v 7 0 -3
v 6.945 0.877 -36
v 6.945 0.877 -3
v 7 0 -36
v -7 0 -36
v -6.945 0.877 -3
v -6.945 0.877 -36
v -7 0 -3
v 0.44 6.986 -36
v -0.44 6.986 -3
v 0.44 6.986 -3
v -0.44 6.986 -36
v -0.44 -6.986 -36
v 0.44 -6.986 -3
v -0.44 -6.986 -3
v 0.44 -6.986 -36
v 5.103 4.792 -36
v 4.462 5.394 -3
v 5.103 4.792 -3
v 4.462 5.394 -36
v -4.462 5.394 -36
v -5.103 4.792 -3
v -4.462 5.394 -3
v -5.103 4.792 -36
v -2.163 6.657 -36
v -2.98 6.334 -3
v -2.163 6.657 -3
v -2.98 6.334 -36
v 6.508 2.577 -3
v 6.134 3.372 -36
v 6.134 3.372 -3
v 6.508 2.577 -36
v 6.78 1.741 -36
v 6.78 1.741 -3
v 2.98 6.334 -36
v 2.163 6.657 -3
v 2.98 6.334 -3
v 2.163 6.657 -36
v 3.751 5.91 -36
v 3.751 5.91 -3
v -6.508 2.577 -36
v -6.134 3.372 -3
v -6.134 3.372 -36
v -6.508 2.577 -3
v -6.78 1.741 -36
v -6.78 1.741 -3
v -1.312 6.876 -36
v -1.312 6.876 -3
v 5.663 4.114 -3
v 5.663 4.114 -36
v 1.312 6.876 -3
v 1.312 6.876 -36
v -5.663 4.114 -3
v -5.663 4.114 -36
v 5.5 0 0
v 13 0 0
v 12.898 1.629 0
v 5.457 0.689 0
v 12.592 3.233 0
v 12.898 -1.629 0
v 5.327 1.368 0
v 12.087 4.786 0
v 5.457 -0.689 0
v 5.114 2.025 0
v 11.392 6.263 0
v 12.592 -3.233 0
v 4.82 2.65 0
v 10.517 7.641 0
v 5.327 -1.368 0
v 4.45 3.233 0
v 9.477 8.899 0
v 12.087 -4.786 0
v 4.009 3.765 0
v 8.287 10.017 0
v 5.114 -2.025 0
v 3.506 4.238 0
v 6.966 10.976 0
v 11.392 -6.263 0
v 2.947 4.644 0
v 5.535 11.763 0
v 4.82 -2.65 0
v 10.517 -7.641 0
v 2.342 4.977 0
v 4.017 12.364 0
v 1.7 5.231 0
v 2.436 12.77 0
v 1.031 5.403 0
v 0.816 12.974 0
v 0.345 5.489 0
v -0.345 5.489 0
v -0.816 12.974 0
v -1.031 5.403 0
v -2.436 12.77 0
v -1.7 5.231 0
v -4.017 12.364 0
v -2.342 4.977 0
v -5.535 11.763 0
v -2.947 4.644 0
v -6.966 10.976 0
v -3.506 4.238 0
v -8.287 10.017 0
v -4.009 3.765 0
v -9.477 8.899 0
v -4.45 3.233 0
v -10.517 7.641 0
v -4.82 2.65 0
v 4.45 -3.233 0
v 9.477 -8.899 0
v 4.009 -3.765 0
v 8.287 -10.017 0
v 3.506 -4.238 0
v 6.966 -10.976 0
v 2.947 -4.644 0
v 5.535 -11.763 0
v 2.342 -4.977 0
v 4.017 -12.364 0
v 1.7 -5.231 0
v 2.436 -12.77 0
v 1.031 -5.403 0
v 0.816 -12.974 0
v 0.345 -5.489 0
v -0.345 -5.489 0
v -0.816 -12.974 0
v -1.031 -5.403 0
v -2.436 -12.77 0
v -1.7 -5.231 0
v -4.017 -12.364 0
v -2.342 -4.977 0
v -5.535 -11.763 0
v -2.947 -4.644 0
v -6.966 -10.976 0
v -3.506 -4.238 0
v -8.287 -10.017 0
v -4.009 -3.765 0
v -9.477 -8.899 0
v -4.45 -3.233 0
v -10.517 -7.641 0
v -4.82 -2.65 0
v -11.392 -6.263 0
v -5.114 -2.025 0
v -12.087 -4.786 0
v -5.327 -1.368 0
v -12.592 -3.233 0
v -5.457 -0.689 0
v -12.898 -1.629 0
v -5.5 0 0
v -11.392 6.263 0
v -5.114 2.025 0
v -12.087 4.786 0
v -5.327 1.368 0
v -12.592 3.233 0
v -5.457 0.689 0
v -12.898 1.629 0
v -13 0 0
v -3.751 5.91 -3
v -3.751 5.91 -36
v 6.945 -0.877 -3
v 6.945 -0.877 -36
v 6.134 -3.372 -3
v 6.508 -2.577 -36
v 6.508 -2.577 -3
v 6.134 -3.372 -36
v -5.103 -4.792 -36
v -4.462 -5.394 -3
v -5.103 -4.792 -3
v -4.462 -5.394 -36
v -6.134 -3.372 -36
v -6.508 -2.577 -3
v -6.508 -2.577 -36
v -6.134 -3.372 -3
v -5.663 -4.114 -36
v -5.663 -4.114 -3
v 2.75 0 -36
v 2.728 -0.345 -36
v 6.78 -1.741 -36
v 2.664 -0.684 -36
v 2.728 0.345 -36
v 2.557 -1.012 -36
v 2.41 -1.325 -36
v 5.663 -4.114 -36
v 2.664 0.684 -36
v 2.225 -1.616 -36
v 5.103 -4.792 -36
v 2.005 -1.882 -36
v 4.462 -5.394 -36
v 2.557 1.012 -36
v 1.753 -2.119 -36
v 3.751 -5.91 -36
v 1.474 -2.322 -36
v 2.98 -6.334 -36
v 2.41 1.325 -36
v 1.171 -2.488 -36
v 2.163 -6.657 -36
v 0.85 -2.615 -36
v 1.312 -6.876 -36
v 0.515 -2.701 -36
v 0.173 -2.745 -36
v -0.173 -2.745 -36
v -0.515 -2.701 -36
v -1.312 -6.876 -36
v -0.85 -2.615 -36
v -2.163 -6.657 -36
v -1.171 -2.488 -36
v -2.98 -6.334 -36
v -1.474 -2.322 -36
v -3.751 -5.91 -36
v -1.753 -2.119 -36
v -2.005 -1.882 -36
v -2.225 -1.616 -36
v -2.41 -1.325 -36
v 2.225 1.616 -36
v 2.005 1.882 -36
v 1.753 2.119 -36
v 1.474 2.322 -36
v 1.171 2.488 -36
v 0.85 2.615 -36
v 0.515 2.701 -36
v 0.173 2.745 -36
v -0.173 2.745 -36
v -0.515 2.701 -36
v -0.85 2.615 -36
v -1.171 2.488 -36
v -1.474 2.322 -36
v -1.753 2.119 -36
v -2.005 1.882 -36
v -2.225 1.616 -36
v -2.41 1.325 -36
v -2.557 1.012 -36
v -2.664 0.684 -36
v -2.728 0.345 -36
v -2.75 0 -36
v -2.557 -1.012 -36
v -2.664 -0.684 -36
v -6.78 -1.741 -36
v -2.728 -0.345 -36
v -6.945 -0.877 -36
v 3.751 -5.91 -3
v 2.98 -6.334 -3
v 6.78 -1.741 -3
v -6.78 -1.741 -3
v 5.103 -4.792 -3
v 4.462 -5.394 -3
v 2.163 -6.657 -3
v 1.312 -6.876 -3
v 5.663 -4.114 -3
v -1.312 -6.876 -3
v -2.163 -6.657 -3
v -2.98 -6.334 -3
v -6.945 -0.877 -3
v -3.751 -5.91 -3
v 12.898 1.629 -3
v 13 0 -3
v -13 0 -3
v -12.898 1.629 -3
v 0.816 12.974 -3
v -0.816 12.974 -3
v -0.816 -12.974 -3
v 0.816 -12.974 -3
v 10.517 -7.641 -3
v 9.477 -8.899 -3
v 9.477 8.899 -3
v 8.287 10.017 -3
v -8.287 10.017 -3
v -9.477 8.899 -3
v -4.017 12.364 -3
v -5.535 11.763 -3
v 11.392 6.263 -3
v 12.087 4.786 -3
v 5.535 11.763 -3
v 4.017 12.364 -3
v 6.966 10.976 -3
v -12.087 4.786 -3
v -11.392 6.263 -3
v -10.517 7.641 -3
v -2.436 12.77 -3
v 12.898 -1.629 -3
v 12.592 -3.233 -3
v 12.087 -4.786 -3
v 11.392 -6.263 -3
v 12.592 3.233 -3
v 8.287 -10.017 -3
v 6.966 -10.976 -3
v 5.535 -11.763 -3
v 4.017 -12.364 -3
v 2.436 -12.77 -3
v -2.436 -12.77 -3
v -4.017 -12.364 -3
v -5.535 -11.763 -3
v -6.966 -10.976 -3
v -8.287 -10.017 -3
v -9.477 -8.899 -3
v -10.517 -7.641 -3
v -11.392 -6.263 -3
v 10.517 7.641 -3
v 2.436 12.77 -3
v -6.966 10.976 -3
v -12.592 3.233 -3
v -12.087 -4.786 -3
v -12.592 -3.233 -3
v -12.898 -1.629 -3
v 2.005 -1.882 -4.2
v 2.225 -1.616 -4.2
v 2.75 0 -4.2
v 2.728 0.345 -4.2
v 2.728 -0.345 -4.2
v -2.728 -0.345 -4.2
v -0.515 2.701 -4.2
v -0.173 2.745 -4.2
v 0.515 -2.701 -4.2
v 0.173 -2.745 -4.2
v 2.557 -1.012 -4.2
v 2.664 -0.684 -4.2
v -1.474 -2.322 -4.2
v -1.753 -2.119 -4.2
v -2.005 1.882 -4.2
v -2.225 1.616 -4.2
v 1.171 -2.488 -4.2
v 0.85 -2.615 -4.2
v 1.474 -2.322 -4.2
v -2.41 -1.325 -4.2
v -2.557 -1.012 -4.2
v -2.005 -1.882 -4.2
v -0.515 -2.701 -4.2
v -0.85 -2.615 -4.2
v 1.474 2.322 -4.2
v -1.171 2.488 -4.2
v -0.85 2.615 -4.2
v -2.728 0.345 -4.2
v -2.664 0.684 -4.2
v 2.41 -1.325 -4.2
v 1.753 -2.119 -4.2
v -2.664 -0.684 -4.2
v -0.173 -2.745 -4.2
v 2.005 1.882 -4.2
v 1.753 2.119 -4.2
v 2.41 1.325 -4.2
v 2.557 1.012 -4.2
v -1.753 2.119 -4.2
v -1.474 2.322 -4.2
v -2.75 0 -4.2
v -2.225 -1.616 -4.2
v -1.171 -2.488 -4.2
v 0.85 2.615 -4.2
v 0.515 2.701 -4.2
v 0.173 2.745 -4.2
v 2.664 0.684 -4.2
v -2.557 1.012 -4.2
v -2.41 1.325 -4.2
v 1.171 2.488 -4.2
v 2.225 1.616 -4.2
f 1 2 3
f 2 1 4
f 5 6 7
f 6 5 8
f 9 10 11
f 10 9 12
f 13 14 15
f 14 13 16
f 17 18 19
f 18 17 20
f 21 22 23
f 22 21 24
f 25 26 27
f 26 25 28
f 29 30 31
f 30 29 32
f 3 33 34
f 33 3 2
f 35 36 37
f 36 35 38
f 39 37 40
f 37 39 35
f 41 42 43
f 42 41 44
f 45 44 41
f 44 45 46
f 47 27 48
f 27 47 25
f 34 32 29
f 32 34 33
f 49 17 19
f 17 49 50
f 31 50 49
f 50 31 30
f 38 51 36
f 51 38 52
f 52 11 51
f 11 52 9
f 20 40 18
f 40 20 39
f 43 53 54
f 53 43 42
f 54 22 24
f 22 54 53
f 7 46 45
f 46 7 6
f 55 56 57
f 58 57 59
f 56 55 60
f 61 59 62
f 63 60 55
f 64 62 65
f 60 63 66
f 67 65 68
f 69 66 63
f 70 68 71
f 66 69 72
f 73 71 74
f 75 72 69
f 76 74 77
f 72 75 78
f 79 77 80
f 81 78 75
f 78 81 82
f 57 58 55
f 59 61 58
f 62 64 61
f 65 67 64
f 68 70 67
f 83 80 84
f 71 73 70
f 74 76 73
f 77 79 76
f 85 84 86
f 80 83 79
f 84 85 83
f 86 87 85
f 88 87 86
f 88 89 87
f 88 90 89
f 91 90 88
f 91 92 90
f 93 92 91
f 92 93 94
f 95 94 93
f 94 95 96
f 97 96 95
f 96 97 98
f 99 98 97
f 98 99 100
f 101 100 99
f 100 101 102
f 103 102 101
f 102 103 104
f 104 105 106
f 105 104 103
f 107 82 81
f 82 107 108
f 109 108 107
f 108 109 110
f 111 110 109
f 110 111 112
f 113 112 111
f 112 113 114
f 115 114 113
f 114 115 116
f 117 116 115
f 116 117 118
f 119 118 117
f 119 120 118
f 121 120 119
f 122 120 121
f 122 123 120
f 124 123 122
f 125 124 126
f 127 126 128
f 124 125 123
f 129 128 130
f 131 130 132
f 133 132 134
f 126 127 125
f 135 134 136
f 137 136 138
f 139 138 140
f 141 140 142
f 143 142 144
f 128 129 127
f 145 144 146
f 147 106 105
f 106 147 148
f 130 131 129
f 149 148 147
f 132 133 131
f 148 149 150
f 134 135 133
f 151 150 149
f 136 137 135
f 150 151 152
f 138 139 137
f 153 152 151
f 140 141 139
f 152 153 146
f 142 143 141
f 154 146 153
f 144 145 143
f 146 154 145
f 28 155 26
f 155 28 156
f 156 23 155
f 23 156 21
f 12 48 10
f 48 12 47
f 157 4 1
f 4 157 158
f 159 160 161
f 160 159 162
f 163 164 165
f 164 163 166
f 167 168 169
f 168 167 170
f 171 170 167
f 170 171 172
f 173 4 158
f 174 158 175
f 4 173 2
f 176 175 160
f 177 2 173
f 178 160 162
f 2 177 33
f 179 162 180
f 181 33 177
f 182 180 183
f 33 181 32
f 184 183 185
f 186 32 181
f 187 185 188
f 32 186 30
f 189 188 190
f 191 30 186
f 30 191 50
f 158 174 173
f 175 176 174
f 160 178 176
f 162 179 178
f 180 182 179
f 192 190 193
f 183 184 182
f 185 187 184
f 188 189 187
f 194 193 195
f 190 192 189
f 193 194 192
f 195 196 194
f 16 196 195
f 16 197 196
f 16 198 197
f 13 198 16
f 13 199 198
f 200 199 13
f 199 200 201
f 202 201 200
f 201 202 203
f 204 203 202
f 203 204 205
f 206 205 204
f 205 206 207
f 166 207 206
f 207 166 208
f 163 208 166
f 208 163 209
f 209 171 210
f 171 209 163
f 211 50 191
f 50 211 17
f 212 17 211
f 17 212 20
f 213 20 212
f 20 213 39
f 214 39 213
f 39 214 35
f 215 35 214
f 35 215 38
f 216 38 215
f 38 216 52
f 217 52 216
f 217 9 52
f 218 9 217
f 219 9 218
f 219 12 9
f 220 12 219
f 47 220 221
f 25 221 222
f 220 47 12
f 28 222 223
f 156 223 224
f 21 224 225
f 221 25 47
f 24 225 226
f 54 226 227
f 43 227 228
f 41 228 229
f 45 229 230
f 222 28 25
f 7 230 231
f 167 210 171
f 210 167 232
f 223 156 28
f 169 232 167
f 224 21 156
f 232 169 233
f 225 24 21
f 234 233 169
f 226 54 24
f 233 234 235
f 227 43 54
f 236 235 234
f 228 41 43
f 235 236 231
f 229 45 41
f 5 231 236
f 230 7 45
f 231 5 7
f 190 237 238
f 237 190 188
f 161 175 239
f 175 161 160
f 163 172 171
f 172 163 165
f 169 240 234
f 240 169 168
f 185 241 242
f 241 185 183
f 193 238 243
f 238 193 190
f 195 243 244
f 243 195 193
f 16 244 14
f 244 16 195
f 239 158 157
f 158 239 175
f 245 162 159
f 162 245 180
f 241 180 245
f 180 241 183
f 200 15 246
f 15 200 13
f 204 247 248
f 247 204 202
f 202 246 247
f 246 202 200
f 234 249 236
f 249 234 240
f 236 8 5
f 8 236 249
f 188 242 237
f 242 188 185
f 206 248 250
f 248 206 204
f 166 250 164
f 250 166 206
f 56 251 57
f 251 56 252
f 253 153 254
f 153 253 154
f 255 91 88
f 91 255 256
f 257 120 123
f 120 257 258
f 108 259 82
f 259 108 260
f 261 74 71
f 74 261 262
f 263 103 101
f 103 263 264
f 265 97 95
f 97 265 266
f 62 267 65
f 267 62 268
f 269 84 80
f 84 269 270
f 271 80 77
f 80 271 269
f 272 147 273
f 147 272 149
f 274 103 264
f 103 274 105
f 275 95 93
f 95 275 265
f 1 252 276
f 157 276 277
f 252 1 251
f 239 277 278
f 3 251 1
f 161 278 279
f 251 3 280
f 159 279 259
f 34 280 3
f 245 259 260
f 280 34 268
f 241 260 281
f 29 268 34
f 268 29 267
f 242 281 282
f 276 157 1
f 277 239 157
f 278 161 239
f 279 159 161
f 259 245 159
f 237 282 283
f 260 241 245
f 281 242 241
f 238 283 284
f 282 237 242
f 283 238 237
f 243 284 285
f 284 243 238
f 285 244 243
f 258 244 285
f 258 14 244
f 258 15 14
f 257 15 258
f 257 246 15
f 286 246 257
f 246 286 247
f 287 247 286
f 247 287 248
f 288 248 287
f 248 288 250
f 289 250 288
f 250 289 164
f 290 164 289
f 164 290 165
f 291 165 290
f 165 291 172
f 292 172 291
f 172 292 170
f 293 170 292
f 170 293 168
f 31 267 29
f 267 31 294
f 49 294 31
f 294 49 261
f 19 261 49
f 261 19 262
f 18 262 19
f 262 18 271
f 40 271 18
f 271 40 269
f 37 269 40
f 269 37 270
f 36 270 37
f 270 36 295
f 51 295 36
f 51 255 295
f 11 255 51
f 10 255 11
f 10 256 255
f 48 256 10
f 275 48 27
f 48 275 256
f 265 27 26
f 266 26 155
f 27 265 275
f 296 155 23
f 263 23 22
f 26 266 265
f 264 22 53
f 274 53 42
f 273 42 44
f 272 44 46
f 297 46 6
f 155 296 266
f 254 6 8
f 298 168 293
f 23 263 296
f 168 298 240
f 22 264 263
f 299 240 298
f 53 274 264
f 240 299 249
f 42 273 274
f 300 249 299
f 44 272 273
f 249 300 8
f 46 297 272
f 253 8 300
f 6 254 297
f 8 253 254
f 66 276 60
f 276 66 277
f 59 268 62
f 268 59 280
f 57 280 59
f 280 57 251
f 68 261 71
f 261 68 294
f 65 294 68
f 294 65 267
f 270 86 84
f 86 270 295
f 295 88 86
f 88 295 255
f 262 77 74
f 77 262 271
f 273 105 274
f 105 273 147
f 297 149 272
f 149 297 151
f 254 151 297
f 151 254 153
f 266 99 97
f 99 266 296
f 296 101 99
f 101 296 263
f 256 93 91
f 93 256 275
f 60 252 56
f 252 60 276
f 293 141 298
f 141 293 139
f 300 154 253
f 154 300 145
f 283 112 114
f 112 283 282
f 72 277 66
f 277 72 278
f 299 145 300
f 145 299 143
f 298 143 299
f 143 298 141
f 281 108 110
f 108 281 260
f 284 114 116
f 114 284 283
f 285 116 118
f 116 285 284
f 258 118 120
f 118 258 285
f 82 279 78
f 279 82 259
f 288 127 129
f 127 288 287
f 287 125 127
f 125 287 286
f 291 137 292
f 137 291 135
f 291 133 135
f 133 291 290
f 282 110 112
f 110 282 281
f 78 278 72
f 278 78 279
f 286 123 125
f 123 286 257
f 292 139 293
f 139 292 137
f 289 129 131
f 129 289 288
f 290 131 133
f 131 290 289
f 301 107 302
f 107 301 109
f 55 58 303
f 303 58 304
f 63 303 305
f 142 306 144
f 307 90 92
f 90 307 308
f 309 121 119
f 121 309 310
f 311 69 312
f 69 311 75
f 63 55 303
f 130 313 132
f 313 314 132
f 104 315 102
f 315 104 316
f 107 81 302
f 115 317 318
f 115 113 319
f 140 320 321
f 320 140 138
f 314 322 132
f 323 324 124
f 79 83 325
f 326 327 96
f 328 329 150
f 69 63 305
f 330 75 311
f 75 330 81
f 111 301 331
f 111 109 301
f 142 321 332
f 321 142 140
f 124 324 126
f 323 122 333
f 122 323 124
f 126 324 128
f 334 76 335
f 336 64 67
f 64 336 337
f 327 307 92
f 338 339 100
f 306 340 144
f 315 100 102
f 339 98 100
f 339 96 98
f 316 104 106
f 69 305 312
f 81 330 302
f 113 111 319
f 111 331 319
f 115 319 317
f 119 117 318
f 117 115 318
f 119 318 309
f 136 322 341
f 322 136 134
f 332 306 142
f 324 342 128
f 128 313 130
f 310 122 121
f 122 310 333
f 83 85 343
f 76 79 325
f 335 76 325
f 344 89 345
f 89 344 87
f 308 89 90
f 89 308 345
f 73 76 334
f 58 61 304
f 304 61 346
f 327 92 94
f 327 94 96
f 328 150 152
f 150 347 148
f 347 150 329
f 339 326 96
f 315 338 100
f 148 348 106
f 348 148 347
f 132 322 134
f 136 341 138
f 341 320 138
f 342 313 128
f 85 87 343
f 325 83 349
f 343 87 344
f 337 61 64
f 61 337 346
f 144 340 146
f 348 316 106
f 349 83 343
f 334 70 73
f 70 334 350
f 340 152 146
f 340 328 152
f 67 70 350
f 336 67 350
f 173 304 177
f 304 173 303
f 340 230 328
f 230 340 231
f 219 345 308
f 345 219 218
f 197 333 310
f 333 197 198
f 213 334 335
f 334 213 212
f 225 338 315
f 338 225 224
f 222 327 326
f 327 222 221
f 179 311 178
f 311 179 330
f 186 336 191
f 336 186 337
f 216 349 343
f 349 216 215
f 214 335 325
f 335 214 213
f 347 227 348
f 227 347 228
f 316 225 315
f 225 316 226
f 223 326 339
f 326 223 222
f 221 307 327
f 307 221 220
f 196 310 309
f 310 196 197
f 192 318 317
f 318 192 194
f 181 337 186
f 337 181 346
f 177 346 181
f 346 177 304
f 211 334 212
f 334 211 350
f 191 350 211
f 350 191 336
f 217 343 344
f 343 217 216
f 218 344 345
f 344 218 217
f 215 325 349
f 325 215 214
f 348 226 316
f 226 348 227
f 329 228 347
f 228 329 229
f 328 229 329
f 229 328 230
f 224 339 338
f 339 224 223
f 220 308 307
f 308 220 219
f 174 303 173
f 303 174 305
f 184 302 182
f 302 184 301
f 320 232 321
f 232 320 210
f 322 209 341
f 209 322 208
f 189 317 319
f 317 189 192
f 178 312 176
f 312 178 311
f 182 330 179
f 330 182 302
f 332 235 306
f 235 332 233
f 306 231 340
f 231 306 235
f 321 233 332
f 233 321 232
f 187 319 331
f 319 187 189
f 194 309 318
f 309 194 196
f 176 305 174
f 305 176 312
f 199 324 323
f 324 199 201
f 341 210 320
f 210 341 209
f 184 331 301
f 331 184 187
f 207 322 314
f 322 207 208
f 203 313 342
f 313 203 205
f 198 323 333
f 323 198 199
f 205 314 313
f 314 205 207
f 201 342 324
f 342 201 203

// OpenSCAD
$fn = 50;


difference() {
	union() {
		translate(v = [0, 0, -36.0000000000]) {
			cylinder(h = 36, r = 7.0000000000);
		}
		translate(v = [0, 0, -3.0000000000]) {
			cylinder(h = 3, r = 13.0000000000);
		}
	}
	union() {
		translate(v = [0, 0, 0]) {
			rotate(a = [0, 0, 0]) {
				difference() {
					union() {
						#translate(v = [0, 0, -36.0000000000]) {
							cylinder(h = 36, r = 2.2500000000);
						}
						#translate(v = [0, 0, -4.2000000000]) {
							cylinder(h = 4.2000000000, r1 = 2.7500000000, r2 = 5.5000000000);
						}
						#translate(v = [0, 0, -36.0000000000]) {
							cylinder(h = 36, r = 2.7500000000);
						}
						#translate(v = [0, 0, -36.0000000000]) {
							cylinder(h = 36, r = 2.2500000000);
						}
					}
					union();
				}
			}
		}
	}
}
